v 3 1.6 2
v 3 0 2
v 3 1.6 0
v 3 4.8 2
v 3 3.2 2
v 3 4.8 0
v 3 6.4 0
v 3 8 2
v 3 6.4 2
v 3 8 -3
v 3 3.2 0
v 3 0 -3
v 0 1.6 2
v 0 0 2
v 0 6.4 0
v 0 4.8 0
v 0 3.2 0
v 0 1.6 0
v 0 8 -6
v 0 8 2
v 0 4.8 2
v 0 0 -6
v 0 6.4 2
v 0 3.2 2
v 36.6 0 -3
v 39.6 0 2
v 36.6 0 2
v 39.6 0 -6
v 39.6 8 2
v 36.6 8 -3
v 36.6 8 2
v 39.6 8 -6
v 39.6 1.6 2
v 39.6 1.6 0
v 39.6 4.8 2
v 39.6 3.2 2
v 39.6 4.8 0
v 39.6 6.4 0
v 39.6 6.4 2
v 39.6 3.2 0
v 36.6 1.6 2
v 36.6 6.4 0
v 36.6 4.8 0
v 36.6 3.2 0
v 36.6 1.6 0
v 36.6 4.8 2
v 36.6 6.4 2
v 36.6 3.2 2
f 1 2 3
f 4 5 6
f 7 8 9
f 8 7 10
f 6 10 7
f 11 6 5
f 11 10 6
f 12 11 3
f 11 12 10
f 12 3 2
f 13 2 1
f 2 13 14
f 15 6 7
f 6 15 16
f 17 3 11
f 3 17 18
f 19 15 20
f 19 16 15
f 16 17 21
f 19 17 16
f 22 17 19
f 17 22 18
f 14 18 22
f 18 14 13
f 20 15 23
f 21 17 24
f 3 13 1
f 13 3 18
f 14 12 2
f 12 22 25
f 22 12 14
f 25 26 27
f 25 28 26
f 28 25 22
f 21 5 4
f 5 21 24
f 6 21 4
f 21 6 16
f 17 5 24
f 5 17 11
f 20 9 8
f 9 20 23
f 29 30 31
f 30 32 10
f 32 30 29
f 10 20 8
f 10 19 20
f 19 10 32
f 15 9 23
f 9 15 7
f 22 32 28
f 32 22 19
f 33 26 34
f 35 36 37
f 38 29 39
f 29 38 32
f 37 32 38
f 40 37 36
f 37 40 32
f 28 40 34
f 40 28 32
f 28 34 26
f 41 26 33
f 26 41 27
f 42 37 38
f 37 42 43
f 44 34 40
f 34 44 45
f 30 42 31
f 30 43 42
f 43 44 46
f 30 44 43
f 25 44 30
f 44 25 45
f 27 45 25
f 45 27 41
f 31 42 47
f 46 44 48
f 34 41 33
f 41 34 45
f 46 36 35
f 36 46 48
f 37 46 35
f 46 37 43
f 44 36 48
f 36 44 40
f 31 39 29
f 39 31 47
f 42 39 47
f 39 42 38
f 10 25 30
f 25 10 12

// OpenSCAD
tolerance = 0.4;

support_thickness = 3;
vertical_gap = 3;

guides_spacing = 35;

wall_width = 1.6;
wall_height = 2;
wall_depth = 3;
gap_witdh = 1.2 + tolerance;
wires_num = 2;
supports_num = 2;

walls_num = wires_num + 1;
total_width = wall_width * walls_num + gap_witdh * wires_num;

support_offset = support_thickness + vertical_gap;

module single_guide() {
    for (n = [0:1:wires_num]) {
        translate([0, (wall_width + gap_witdh) * n])
            cube(size = [wall_depth, wall_width, wall_height]);
    }

    translate([0, 0, -support_offset])
        cube(size = [wall_depth, total_width, support_offset]);
}


for (n = [0:1:supports_num - 1]) {
    translate([(wall_width + guides_spacing) * n, 0, 0])
        single_guide();
}

for (n = [0:1:supports_num - 2]) {
    translate([(wall_width + guides_spacing) * n, 0, -support_offset])
        cube(size = [wall_depth + guides_spacing, total_width, support_thickness]);
}
